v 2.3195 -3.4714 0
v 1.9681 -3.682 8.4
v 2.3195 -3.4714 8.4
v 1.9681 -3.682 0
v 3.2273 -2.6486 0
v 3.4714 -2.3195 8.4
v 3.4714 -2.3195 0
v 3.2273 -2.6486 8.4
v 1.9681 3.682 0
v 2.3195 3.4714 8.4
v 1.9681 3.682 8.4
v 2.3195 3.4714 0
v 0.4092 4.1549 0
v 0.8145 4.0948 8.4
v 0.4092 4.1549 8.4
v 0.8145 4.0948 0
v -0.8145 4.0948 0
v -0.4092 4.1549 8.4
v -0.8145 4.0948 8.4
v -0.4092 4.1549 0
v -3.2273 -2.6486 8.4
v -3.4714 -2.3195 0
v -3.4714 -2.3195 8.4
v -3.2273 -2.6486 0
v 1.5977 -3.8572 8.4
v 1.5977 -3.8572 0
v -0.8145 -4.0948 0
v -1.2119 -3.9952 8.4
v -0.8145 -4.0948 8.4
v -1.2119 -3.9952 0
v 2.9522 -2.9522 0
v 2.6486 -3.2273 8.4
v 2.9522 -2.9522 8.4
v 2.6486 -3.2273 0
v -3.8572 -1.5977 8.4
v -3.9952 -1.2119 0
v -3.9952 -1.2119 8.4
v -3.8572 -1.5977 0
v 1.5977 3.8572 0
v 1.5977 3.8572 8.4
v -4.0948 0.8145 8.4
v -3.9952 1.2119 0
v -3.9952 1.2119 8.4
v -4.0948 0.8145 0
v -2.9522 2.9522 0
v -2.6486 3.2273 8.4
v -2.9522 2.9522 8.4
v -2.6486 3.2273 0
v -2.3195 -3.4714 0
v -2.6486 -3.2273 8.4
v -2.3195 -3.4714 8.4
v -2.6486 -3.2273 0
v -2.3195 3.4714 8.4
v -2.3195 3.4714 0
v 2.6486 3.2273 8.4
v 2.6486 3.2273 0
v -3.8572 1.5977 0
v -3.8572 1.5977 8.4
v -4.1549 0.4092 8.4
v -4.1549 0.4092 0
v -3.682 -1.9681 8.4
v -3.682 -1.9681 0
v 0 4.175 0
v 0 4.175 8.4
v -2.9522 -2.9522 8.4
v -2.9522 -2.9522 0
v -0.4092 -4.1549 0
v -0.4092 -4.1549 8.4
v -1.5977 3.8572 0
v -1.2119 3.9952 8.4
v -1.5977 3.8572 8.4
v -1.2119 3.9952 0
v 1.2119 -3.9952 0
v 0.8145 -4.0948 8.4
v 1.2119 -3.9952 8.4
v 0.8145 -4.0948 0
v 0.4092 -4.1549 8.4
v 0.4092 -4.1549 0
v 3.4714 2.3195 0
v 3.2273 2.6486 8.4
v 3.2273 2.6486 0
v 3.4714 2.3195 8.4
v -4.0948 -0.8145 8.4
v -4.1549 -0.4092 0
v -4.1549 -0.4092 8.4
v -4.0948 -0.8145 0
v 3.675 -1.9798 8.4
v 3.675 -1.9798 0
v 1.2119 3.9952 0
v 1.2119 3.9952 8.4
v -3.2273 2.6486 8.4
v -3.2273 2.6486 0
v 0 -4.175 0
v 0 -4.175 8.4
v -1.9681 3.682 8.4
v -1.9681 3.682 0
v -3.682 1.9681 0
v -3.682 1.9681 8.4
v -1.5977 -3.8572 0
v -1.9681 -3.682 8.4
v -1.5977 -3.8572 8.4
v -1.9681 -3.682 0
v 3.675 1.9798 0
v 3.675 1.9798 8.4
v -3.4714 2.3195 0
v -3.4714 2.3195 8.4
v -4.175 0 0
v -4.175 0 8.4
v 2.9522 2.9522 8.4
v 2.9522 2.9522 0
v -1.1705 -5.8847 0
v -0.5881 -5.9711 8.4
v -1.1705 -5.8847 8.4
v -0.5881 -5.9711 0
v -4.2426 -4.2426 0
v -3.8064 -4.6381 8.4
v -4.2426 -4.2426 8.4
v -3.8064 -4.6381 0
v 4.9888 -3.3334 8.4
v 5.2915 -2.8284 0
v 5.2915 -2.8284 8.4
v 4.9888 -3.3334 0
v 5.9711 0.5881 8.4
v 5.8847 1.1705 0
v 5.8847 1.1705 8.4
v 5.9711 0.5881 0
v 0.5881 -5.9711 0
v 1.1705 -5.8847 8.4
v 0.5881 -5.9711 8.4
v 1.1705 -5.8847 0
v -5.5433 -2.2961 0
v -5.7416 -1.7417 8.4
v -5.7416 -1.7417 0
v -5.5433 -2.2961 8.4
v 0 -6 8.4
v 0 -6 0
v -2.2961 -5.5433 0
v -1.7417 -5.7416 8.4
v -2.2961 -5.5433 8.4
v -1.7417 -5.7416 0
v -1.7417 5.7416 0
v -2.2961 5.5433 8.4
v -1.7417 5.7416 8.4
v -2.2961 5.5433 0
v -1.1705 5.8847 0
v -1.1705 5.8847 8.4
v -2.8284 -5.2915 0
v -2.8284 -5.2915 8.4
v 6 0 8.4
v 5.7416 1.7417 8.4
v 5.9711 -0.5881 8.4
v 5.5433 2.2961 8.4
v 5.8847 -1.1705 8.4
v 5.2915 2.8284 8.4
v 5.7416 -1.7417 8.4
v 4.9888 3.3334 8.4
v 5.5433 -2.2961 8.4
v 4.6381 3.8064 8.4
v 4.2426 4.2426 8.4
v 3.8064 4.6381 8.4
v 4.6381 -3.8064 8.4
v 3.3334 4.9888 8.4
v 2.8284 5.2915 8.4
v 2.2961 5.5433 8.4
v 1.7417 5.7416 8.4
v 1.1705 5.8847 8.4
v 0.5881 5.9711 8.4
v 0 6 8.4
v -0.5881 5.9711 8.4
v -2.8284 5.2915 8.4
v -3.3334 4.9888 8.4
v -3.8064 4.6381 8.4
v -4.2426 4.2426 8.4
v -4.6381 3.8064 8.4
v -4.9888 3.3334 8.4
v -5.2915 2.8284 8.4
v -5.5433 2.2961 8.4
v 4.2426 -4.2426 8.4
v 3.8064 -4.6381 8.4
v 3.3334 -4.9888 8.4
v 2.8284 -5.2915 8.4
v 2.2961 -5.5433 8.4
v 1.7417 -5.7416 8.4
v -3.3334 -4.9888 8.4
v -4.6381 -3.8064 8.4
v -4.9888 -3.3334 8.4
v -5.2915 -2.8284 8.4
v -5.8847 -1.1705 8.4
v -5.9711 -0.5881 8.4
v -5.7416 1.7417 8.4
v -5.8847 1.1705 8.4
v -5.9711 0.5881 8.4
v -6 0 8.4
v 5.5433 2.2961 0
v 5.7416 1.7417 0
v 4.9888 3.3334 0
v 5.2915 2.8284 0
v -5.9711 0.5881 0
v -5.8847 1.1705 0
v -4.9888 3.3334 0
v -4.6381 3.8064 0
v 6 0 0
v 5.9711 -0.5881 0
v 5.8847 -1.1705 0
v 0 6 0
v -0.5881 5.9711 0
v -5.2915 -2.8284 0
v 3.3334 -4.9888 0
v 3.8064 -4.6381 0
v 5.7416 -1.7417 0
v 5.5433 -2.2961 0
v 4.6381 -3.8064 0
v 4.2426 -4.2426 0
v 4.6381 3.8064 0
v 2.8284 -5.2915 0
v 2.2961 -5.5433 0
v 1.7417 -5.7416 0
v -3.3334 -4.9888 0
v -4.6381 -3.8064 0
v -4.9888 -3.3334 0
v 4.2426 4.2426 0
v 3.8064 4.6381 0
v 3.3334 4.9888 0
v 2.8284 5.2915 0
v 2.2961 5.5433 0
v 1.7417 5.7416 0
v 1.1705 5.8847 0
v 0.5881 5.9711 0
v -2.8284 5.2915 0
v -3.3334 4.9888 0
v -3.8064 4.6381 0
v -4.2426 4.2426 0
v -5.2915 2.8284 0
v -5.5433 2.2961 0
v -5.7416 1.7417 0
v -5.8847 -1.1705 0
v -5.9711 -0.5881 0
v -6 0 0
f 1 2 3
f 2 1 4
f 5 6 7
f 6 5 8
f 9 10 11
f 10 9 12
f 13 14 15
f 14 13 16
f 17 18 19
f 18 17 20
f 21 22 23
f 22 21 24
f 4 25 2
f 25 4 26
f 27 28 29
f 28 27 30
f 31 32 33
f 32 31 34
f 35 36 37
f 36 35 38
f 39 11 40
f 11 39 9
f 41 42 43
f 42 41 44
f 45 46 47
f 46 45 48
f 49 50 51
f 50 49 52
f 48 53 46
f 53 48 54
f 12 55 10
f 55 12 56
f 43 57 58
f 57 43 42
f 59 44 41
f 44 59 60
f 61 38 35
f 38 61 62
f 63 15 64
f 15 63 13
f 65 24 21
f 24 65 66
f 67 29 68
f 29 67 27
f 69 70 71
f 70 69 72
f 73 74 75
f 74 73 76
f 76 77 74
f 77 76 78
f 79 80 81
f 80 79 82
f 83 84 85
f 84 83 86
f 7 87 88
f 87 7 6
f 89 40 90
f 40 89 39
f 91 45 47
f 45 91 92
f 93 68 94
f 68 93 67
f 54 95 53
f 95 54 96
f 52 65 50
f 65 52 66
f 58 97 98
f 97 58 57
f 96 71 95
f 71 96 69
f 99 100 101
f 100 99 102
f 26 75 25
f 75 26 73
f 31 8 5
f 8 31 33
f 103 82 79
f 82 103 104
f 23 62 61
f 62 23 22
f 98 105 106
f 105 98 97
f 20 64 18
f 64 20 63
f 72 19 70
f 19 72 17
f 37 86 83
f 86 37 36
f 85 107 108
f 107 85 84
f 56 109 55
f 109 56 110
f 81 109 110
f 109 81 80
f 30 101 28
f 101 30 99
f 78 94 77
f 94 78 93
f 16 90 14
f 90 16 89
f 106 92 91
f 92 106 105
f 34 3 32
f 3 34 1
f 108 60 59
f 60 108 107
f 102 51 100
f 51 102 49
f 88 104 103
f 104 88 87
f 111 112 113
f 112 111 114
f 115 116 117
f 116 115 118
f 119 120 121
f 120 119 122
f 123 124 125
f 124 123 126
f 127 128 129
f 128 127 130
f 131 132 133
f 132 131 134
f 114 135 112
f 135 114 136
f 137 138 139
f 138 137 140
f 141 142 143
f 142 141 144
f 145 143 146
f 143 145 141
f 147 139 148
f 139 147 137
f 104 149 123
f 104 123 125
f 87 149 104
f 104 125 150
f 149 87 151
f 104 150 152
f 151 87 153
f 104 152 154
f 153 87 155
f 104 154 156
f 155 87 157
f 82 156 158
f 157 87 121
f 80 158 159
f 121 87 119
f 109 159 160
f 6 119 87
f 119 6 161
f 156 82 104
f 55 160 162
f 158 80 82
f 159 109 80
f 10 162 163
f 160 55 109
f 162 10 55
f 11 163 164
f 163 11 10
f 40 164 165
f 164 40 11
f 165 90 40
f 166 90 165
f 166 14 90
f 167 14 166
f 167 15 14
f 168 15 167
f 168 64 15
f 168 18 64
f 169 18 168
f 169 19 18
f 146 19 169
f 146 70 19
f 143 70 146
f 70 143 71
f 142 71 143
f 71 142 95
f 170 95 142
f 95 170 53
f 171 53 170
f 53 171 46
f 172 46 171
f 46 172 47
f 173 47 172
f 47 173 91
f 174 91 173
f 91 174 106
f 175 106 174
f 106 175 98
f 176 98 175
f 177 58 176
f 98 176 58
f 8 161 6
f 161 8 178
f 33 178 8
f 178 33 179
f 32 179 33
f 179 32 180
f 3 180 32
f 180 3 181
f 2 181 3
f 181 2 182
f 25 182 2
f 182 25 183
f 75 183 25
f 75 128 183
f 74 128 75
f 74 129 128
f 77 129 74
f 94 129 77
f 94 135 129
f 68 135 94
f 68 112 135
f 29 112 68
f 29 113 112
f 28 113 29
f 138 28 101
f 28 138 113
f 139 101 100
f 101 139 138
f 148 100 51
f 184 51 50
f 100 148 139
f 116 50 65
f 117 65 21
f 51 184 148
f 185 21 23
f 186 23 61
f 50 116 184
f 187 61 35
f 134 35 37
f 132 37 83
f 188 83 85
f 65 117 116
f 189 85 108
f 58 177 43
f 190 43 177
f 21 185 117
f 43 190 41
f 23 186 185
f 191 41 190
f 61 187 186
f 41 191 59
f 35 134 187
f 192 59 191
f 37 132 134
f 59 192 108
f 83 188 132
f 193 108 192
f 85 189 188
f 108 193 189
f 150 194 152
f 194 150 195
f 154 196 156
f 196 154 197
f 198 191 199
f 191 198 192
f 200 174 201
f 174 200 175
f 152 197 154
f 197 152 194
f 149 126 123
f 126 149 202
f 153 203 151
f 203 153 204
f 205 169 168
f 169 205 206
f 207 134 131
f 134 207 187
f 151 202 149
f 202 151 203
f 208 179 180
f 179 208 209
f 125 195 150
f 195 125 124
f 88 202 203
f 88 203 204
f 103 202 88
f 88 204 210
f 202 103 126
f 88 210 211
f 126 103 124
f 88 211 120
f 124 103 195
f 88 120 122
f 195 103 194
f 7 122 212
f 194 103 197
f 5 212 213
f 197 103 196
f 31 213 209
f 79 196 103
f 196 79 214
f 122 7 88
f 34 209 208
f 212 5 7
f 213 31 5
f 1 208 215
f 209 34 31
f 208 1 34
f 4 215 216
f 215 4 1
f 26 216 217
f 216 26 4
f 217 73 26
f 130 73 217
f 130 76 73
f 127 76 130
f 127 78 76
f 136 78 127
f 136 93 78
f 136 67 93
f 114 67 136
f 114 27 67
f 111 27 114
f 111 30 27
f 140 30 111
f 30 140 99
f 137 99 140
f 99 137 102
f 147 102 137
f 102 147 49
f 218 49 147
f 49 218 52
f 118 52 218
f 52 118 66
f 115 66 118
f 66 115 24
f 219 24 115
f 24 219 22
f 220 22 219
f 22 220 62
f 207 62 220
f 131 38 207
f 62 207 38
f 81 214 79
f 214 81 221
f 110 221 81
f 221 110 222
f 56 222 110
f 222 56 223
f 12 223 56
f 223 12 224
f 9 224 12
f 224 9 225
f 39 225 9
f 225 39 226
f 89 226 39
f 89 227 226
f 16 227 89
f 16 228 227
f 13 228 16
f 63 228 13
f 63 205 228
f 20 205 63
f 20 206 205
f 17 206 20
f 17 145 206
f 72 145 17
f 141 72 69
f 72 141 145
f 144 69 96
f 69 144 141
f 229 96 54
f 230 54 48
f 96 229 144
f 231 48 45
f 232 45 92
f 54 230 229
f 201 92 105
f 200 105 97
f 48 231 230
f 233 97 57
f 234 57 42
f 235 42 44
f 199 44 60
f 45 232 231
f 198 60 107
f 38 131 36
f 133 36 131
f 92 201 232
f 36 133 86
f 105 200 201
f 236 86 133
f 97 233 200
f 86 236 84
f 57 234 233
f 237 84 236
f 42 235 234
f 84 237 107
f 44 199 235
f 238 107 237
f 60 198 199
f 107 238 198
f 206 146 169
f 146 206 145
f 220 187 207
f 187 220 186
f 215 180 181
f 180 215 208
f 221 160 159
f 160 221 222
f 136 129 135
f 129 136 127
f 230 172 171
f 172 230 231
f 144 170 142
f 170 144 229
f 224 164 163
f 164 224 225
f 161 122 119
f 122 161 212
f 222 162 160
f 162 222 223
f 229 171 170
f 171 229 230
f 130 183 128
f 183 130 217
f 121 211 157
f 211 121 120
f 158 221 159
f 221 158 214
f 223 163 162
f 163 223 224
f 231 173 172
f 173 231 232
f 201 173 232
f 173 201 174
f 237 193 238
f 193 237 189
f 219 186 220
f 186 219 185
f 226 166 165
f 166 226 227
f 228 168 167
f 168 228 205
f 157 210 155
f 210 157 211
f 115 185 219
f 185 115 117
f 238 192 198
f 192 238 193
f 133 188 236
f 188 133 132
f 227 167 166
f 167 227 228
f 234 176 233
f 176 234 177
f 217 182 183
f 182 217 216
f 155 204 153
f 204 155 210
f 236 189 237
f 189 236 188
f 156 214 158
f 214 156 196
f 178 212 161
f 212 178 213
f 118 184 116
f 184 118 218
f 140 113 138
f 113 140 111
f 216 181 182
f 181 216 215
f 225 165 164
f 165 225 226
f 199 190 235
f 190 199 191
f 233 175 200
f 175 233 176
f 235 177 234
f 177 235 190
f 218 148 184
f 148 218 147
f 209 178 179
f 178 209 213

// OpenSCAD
// Gen-CU — gap sleeve: rigid spacer on the shaft BETWEEN the two rotor carriers (passes through the stator
// hole). Length = m2m, so it sets the magnet gap and carries the full magnet pull. Print x1, upright.
include <parameters.scad>;
$fn = 64;
// D-flat keyed bore: flat faces +X (angle 0 = magnet pocket 0 = index notch)
module dflat_bore(h) {
    intersection() {
        cylinder(d=shaft_bore, h=h);
        translate([-shaft_bore, -shaft_bore, 0]) cube([shaft_bore + dflat_x, 2*shaft_bore, h]);
    }
}

difference() {
    cylinder(d=sleeve_od, h=m2m);
    translate([0, 0, -0.1]) dflat_bore(m2m + 0.2);
}
